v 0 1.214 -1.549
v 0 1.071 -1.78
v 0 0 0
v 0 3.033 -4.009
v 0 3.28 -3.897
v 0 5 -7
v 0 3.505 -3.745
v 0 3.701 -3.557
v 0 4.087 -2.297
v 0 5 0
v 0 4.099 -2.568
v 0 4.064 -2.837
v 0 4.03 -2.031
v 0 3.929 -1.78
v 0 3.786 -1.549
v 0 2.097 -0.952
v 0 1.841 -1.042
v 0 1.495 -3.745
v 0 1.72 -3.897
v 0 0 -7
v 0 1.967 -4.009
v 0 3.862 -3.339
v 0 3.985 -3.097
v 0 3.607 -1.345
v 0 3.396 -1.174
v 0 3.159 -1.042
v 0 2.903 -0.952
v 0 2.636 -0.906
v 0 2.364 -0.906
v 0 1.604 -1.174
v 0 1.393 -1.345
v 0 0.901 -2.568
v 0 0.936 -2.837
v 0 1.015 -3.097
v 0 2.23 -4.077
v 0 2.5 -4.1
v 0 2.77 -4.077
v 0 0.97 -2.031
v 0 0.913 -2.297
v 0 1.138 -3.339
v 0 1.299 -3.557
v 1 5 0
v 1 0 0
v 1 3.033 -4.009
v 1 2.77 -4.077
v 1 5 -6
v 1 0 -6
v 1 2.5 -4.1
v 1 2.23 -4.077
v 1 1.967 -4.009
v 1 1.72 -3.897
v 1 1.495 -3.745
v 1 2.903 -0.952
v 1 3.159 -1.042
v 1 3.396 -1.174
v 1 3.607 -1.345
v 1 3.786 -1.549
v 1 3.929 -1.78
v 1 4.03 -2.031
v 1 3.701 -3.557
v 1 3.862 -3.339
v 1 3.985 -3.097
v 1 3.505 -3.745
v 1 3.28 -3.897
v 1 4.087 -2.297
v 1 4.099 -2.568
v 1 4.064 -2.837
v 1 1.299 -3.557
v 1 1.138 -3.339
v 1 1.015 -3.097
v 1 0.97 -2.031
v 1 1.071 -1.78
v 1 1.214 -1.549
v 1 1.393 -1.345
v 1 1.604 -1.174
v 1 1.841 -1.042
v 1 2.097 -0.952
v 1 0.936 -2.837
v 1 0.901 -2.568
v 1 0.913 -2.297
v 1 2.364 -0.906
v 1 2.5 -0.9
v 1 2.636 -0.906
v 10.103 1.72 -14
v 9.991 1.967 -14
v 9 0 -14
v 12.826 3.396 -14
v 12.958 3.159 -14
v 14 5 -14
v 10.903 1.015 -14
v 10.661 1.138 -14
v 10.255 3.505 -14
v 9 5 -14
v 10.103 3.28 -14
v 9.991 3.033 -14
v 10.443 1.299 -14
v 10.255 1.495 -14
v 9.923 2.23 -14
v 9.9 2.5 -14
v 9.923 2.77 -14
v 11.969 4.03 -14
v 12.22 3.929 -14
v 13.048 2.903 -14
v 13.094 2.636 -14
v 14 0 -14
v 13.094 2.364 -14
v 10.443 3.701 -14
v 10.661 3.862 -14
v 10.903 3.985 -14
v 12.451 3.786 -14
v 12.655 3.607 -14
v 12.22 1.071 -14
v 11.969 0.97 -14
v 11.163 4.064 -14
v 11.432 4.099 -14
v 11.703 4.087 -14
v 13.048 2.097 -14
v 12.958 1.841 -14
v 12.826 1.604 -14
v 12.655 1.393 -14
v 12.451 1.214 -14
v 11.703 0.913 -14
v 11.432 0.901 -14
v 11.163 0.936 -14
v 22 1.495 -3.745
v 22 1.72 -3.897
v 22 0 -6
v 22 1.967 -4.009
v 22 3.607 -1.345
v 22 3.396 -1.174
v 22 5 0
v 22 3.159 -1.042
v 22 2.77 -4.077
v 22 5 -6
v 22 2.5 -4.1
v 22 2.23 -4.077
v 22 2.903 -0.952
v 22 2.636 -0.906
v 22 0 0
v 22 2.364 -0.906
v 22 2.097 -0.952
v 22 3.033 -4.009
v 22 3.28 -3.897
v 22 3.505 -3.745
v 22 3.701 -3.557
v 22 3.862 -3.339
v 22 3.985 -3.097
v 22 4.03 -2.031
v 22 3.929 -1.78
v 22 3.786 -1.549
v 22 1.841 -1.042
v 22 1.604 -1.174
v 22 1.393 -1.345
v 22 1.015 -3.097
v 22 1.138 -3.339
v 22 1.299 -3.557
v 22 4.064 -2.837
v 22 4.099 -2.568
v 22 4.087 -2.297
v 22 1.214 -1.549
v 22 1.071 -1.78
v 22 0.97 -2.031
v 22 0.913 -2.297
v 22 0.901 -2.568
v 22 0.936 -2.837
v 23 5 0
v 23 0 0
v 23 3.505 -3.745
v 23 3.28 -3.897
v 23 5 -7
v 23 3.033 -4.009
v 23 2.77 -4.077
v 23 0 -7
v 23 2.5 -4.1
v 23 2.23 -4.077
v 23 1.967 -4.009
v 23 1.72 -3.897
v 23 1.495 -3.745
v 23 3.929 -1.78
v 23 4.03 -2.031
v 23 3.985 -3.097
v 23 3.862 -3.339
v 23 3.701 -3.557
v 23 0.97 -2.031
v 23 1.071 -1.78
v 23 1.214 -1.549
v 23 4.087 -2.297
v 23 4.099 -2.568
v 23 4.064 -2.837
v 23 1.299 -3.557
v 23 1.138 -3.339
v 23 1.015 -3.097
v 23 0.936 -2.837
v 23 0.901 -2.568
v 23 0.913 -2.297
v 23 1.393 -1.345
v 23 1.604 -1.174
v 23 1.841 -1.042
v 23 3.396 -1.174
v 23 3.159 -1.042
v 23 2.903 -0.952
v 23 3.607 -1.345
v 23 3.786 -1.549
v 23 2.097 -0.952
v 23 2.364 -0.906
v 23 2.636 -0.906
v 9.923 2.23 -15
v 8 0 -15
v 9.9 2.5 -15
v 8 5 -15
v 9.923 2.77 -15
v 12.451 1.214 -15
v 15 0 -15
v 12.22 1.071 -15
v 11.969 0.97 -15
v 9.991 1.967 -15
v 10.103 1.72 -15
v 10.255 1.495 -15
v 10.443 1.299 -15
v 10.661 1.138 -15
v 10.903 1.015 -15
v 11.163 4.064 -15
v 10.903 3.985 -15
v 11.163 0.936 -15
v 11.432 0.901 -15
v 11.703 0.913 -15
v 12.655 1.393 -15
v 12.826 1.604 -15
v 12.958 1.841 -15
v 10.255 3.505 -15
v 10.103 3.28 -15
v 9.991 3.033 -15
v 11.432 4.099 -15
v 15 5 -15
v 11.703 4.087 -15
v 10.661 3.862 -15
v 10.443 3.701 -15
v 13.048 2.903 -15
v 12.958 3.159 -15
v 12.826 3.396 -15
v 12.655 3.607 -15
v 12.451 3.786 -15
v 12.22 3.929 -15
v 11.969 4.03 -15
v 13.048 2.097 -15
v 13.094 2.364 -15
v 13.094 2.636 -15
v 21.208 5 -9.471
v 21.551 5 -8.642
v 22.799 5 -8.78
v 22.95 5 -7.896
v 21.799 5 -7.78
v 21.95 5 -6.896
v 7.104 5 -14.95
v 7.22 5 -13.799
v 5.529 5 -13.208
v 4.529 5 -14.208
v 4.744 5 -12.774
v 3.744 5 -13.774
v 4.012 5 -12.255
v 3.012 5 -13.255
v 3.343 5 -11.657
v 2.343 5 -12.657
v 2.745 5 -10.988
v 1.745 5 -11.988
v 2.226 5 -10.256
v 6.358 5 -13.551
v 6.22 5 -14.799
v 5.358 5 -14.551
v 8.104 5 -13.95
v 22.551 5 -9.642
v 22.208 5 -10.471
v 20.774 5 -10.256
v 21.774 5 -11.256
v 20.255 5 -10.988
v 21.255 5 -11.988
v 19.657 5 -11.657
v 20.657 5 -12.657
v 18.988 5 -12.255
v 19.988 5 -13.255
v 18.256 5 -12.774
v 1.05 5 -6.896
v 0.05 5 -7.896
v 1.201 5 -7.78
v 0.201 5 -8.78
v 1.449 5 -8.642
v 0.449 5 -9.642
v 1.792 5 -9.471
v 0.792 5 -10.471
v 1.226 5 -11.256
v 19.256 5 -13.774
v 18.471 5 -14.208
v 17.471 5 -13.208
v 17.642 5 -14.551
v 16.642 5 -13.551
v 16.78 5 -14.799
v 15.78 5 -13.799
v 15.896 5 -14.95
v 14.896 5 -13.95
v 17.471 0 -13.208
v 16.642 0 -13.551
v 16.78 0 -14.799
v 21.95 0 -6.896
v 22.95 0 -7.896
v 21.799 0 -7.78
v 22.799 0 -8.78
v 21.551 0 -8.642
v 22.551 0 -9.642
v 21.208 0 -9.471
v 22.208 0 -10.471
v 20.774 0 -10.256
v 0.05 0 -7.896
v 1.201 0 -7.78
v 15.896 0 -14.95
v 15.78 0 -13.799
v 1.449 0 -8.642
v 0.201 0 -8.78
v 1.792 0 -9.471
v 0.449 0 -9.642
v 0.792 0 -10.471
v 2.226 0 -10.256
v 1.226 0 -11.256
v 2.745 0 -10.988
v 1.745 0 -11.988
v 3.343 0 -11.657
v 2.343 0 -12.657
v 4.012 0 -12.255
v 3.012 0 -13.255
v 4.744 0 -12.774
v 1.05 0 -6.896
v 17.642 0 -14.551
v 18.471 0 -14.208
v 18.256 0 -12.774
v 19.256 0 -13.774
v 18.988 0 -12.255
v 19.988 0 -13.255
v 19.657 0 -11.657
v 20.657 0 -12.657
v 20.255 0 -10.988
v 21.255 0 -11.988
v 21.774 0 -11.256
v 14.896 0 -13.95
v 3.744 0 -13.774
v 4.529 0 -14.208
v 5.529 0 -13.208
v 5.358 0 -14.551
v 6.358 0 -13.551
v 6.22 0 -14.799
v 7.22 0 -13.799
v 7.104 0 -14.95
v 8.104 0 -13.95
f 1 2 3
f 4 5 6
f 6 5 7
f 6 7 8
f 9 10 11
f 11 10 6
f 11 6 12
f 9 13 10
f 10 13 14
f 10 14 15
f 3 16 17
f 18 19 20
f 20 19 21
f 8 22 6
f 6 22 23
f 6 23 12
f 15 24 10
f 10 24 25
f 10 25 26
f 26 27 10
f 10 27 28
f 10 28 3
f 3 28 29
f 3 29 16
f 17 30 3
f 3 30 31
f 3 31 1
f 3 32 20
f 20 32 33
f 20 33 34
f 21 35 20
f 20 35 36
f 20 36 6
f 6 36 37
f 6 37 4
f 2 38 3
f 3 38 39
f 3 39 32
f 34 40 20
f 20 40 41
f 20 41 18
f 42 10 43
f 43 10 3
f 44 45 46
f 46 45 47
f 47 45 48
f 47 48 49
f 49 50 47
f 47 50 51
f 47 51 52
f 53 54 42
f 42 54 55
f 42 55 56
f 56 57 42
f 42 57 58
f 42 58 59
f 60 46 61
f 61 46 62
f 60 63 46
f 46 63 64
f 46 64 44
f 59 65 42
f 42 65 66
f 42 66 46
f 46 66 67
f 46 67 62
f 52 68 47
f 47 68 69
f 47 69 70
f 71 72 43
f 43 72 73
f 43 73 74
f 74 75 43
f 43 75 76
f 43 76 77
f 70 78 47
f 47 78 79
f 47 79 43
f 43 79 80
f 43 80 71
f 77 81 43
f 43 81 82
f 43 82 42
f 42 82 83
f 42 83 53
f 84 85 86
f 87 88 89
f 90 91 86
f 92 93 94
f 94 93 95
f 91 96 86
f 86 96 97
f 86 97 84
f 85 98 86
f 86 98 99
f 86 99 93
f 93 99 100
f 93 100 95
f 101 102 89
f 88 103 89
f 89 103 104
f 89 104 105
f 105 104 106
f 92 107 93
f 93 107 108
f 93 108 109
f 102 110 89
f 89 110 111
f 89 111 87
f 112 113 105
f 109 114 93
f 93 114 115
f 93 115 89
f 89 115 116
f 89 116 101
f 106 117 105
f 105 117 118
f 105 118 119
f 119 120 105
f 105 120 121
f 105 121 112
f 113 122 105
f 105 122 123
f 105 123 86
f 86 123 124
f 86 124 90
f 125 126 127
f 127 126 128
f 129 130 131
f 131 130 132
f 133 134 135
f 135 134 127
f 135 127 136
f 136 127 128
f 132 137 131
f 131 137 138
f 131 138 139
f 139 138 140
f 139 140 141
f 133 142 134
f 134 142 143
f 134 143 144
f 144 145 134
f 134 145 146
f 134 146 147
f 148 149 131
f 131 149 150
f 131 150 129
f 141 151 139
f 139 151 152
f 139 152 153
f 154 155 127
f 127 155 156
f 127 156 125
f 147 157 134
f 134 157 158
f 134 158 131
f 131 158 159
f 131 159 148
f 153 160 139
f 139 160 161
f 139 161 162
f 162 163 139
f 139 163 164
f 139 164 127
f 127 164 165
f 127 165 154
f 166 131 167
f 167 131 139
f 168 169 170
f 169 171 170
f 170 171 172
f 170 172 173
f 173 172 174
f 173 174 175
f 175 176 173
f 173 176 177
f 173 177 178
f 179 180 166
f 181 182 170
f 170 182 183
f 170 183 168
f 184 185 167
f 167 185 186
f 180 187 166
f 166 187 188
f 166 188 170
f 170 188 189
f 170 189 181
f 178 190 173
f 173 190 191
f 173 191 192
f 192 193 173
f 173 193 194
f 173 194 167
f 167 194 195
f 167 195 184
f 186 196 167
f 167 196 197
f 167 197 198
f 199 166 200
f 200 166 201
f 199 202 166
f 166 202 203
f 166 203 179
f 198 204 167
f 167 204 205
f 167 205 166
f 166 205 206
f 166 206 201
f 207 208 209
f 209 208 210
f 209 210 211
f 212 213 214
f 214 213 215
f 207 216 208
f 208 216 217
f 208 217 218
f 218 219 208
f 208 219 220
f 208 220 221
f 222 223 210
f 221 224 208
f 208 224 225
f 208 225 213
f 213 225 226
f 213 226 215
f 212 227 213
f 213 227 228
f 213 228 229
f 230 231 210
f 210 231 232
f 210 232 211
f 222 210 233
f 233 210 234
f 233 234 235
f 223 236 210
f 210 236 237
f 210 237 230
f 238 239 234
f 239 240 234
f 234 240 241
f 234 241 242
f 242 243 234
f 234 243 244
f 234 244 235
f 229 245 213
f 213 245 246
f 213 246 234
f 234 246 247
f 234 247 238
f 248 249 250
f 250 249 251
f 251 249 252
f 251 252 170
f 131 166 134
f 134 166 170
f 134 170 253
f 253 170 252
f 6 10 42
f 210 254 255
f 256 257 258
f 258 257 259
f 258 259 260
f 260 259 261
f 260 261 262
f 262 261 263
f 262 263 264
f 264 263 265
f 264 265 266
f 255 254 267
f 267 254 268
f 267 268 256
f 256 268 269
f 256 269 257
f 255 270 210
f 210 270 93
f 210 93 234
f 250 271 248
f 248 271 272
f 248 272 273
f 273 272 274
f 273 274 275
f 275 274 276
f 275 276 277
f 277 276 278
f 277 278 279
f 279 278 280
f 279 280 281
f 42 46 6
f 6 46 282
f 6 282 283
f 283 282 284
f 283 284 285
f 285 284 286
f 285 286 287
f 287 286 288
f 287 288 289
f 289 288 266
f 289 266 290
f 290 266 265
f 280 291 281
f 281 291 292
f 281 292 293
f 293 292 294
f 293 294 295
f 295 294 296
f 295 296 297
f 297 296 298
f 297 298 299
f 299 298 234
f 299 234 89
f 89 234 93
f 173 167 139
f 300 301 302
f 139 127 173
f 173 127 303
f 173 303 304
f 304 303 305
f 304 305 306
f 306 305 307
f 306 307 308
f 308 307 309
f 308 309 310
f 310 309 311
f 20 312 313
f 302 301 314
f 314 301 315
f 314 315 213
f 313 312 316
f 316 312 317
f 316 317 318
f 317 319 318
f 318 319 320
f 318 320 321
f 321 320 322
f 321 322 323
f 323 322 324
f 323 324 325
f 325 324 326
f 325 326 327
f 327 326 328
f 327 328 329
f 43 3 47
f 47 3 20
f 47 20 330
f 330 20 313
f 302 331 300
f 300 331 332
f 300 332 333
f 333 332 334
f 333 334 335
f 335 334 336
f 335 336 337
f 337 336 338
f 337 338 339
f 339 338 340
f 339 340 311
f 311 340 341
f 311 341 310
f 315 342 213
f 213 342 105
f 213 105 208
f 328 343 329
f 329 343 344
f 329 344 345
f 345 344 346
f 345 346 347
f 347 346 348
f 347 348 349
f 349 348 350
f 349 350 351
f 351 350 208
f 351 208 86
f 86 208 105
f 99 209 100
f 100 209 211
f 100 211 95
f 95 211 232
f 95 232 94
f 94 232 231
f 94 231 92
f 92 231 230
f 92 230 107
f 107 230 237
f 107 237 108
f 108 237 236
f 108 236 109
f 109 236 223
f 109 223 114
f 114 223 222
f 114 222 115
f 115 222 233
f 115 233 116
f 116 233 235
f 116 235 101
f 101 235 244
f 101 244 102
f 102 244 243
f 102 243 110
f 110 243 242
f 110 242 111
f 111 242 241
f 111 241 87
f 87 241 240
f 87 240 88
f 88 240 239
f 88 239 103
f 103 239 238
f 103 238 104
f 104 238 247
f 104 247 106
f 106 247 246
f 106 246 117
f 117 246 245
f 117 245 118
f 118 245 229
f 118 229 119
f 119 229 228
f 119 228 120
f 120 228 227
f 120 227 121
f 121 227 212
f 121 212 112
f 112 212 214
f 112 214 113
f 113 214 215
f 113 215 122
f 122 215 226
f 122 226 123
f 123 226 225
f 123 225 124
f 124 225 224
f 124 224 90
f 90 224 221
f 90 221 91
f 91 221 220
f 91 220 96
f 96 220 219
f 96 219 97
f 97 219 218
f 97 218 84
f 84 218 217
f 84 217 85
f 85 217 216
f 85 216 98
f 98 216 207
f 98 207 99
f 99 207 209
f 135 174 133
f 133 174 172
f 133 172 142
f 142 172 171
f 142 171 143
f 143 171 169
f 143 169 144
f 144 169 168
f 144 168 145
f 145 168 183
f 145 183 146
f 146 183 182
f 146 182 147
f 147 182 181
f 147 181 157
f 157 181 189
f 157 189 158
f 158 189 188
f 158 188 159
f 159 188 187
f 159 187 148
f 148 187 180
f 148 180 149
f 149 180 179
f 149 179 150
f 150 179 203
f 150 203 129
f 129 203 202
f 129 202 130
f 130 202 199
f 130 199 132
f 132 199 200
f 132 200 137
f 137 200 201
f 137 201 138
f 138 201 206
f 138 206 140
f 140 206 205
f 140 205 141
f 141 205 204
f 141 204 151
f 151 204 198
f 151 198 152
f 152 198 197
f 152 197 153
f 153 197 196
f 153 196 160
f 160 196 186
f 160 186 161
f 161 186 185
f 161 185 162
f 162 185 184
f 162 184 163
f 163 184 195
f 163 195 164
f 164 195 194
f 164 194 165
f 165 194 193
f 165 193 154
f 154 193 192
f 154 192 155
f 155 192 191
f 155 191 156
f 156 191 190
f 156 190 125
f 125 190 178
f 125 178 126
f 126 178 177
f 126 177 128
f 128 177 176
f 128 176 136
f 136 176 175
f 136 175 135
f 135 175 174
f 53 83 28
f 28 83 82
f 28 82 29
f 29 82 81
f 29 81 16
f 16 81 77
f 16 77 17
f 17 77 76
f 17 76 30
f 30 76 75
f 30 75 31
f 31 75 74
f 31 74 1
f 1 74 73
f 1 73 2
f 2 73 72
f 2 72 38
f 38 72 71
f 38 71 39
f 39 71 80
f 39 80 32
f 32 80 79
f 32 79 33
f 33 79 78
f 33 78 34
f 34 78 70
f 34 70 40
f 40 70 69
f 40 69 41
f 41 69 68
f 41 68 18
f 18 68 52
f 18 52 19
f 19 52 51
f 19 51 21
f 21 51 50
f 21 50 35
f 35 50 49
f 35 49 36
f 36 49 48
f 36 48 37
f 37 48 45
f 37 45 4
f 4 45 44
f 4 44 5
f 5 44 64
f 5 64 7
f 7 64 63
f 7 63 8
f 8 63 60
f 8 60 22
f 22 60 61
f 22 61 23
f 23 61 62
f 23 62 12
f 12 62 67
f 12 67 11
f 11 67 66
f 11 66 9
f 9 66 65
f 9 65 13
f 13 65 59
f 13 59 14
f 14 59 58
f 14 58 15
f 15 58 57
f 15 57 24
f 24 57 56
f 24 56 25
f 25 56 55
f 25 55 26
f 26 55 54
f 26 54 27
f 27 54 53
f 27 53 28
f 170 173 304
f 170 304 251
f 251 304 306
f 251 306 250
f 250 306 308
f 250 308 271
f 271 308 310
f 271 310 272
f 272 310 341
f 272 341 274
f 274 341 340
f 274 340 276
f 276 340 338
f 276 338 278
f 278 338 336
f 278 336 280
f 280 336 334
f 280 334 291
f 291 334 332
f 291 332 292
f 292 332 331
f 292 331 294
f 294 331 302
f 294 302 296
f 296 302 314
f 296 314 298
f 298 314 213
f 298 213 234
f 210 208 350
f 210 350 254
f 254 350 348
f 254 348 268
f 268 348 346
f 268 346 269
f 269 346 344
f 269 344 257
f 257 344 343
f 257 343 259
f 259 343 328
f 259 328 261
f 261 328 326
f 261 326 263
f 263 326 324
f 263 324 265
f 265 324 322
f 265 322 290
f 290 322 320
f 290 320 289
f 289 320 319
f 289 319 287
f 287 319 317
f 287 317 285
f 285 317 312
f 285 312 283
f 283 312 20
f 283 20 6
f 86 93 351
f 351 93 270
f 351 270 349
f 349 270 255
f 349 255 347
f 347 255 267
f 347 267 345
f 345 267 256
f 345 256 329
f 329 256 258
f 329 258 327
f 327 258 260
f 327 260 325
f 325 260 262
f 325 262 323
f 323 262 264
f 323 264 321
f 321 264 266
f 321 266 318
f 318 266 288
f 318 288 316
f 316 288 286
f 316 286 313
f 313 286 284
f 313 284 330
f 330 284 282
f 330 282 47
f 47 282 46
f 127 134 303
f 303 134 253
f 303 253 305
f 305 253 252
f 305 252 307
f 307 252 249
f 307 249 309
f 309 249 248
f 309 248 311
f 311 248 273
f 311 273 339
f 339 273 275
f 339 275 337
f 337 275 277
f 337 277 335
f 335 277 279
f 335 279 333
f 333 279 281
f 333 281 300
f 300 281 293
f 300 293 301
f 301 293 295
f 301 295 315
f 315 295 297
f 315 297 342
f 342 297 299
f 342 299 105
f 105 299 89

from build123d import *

# Parameters (mm, degrees)
BOSS_EXTRUDE1_DEPTH = 5
SKETCH2_R           = 1.6
CUT_EXTRUDE1_DEPTH  = 5
SKETCH3_R           = 1.6
CUT_EXTRUDE2_DEPTH  = 27
FILLET1_R           = 8


with BuildPart() as part:
    # Sketch1 → Boss-Extrude1 (new body)
    with BuildSketch(Plane(origin=(0, 0, 0), x_dir=(1, 0, 0), z_dir=(0, 1, 0))):
        Polygon((0, 0), (1, 0), (1, 14), (22, 14), (22, 0), (23, 0), (23, 15), (0, 15), align=None)
    extrude(amount=BOSS_EXTRUDE1_DEPTH)

    # Sketch2 → Cut-Extrude1 (cut)
    with BuildSketch(Plane(origin=(0, 0, -15), x_dir=(-1, 0, 0), z_dir=(0, 0, -1))):
        with Locations((-11.5, 2.5)):
            Circle(SKETCH2_R)
    extrude(amount=-CUT_EXTRUDE1_DEPTH, mode=Mode.SUBTRACT)

    # Sketch3 → Cut-Extrude2 (cut)
    with BuildSketch(Plane(origin=(23, 0, 0), x_dir=(0, 0, -1), z_dir=(1, 0, 0))):
        with Locations((2.5, 2.5)):
            Circle(SKETCH3_R)
    extrude(amount=-CUT_EXTRUDE2_DEPTH, mode=Mode.SUBTRACT)

    # Fillet1
    fillet1_edges = [part.edges().sort_by_distance(p)[0] for p in [
        (0, 2.5, -15),
        (23, 2.5, -15),
        (22, 2.5, -14),
        (1, 2.5, -14),
    ]]
    fillet(fillet1_edges, radius=FILLET1_R)


solid = part.part
